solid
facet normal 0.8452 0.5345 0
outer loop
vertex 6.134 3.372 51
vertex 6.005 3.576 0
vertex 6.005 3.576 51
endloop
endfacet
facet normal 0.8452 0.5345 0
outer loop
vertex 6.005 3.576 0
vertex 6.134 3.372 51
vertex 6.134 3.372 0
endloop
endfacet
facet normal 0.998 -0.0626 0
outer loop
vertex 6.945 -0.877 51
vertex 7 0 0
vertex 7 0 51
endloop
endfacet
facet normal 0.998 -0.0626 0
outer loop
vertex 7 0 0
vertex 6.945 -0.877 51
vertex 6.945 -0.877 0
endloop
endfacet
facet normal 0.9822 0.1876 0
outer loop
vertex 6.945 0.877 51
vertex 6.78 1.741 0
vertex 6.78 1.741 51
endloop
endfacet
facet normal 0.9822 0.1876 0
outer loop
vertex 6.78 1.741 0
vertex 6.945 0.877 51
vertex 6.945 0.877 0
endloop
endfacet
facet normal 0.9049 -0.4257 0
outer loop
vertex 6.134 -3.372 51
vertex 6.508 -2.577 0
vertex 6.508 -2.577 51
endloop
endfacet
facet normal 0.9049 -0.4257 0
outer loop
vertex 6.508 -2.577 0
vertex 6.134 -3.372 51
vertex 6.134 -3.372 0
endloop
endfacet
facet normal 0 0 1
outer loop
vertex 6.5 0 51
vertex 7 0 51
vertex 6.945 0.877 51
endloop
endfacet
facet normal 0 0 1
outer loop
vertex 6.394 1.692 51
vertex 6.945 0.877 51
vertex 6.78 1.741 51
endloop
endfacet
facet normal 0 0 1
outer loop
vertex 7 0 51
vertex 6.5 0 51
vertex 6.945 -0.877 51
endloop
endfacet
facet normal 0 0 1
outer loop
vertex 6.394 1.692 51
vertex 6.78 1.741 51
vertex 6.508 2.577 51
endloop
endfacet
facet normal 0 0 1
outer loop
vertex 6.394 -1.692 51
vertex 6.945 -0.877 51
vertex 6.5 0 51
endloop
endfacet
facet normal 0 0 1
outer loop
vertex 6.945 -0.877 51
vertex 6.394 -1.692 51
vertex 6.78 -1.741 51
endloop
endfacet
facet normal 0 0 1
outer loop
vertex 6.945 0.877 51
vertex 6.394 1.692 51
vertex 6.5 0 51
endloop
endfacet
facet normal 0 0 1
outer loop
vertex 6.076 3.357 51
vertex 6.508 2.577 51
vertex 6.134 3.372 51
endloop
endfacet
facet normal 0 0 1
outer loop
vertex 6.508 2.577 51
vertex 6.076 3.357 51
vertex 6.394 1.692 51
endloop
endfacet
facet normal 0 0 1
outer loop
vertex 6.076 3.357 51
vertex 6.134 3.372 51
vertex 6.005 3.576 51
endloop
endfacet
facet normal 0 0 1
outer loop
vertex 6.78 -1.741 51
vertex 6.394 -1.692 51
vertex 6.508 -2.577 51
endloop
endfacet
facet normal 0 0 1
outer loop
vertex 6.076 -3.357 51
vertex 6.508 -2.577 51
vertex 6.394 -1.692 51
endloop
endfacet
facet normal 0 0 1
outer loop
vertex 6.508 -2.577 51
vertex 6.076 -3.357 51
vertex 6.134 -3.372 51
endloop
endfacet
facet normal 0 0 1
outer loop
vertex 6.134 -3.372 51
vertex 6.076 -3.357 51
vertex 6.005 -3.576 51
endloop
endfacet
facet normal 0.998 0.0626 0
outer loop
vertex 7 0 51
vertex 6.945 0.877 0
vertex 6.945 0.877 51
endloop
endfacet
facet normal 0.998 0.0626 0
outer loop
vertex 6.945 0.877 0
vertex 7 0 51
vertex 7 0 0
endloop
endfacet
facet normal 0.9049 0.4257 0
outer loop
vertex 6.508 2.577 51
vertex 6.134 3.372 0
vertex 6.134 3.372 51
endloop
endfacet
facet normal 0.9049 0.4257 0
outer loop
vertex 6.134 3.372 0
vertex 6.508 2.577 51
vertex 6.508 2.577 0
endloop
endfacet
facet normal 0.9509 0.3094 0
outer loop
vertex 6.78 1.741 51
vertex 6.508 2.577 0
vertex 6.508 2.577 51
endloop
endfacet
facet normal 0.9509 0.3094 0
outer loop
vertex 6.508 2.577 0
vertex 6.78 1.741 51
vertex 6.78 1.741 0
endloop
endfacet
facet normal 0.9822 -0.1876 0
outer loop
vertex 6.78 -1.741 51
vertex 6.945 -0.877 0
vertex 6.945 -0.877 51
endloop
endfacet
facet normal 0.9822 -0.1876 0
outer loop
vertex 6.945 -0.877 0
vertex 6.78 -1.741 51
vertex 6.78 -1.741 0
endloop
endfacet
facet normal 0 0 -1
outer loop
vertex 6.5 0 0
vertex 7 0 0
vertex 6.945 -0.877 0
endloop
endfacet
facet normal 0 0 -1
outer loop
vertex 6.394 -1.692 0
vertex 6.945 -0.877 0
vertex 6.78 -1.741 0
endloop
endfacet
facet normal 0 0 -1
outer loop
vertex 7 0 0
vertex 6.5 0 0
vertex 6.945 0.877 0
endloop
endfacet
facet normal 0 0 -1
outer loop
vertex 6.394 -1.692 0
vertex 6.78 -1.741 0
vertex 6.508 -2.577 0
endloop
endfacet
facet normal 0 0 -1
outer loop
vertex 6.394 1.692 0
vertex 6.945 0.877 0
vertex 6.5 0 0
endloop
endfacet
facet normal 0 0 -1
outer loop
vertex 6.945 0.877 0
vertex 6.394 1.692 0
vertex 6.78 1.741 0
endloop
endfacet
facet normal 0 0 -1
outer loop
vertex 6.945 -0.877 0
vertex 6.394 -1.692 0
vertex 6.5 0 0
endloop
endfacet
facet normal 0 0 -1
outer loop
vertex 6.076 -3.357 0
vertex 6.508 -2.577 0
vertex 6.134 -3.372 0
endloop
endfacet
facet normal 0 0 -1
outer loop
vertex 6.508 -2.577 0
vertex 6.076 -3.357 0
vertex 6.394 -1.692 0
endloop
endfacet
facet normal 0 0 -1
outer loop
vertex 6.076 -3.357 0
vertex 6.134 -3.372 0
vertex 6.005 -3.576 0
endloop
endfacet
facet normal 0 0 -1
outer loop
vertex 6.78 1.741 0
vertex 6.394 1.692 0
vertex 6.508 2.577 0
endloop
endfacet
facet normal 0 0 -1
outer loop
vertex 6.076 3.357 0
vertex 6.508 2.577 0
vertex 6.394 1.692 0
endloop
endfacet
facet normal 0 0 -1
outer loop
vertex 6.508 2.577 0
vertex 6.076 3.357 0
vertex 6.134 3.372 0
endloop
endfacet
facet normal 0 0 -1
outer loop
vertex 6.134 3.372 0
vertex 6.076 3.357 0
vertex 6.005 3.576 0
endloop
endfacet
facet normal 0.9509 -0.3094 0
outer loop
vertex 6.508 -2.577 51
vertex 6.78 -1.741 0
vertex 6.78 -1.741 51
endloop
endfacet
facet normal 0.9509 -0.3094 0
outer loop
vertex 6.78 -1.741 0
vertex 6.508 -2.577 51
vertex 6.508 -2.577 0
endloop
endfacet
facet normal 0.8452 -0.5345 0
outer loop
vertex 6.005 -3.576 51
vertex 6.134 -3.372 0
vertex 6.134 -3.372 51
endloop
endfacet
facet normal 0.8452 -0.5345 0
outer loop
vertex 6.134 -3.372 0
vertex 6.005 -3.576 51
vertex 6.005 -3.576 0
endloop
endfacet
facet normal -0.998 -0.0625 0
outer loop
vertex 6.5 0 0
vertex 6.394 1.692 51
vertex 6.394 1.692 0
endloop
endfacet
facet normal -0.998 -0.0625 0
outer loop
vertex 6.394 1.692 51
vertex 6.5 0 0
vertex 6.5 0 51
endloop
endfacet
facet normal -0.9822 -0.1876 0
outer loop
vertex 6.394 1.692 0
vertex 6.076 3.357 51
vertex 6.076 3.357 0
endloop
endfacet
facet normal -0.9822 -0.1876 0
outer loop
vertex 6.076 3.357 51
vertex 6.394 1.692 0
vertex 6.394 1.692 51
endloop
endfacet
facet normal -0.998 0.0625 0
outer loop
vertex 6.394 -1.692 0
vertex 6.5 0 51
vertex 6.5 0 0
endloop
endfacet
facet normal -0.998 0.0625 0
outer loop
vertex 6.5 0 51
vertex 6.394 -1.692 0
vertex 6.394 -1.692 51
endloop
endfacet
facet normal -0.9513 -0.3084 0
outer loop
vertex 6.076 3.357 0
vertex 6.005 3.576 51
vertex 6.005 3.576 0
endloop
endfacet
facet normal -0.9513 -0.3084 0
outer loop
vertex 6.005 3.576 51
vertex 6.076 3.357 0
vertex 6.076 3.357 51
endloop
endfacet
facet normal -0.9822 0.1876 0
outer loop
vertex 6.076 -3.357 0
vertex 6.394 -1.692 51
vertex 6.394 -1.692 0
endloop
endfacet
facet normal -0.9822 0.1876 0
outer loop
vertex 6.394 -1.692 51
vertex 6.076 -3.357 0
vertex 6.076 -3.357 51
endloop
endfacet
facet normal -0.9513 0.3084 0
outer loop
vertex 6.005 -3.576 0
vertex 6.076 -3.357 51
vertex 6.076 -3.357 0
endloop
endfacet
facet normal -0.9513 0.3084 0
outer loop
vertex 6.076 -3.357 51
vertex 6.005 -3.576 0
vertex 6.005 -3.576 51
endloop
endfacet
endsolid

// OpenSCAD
$fn = 50;


difference() {
	union() {
		cylinder(h = 51, r = 7.0000000000);
		translate(v = [-10.0000000000, 0, 0]) {
			cylinder(h = 51, r = 7.0000000000);
		}
	}
	union() {
		cylinder(h = 51, r = 3.2500000000);
		cylinder(h = 51, r = 1.8000000000);
		cylinder(h = 51, r = 1.8000000000);
		cylinder(h = 51, r = 1.8000000000);
		translate(v = [-14.5000000000, 0, 0]) {
			hull() {
				translate(v = [-3.7500000000, 0.0000000000, 0]) {
					cylinder(h = 51, r = 7.5000000000);
				}
				translate(v = [3.7500000000, 0.0000000000, 0]) {
					cylinder(h = 51, r = 7.5000000000);
				}
				translate(v = [-3.7500000000, -0.0000000000, 0]) {
					cylinder(h = 51, r = 7.5000000000);
				}
				translate(v = [3.7500000000, -0.0000000000, 0]) {
					cylinder(h = 51, r = 7.5000000000);
				}
			}
		}
		translate(v = [-7.0000000000, 0, 0.0000000000]) {
			cylinder(h = 51, r = 13.5000000000);
		}
	}
}
